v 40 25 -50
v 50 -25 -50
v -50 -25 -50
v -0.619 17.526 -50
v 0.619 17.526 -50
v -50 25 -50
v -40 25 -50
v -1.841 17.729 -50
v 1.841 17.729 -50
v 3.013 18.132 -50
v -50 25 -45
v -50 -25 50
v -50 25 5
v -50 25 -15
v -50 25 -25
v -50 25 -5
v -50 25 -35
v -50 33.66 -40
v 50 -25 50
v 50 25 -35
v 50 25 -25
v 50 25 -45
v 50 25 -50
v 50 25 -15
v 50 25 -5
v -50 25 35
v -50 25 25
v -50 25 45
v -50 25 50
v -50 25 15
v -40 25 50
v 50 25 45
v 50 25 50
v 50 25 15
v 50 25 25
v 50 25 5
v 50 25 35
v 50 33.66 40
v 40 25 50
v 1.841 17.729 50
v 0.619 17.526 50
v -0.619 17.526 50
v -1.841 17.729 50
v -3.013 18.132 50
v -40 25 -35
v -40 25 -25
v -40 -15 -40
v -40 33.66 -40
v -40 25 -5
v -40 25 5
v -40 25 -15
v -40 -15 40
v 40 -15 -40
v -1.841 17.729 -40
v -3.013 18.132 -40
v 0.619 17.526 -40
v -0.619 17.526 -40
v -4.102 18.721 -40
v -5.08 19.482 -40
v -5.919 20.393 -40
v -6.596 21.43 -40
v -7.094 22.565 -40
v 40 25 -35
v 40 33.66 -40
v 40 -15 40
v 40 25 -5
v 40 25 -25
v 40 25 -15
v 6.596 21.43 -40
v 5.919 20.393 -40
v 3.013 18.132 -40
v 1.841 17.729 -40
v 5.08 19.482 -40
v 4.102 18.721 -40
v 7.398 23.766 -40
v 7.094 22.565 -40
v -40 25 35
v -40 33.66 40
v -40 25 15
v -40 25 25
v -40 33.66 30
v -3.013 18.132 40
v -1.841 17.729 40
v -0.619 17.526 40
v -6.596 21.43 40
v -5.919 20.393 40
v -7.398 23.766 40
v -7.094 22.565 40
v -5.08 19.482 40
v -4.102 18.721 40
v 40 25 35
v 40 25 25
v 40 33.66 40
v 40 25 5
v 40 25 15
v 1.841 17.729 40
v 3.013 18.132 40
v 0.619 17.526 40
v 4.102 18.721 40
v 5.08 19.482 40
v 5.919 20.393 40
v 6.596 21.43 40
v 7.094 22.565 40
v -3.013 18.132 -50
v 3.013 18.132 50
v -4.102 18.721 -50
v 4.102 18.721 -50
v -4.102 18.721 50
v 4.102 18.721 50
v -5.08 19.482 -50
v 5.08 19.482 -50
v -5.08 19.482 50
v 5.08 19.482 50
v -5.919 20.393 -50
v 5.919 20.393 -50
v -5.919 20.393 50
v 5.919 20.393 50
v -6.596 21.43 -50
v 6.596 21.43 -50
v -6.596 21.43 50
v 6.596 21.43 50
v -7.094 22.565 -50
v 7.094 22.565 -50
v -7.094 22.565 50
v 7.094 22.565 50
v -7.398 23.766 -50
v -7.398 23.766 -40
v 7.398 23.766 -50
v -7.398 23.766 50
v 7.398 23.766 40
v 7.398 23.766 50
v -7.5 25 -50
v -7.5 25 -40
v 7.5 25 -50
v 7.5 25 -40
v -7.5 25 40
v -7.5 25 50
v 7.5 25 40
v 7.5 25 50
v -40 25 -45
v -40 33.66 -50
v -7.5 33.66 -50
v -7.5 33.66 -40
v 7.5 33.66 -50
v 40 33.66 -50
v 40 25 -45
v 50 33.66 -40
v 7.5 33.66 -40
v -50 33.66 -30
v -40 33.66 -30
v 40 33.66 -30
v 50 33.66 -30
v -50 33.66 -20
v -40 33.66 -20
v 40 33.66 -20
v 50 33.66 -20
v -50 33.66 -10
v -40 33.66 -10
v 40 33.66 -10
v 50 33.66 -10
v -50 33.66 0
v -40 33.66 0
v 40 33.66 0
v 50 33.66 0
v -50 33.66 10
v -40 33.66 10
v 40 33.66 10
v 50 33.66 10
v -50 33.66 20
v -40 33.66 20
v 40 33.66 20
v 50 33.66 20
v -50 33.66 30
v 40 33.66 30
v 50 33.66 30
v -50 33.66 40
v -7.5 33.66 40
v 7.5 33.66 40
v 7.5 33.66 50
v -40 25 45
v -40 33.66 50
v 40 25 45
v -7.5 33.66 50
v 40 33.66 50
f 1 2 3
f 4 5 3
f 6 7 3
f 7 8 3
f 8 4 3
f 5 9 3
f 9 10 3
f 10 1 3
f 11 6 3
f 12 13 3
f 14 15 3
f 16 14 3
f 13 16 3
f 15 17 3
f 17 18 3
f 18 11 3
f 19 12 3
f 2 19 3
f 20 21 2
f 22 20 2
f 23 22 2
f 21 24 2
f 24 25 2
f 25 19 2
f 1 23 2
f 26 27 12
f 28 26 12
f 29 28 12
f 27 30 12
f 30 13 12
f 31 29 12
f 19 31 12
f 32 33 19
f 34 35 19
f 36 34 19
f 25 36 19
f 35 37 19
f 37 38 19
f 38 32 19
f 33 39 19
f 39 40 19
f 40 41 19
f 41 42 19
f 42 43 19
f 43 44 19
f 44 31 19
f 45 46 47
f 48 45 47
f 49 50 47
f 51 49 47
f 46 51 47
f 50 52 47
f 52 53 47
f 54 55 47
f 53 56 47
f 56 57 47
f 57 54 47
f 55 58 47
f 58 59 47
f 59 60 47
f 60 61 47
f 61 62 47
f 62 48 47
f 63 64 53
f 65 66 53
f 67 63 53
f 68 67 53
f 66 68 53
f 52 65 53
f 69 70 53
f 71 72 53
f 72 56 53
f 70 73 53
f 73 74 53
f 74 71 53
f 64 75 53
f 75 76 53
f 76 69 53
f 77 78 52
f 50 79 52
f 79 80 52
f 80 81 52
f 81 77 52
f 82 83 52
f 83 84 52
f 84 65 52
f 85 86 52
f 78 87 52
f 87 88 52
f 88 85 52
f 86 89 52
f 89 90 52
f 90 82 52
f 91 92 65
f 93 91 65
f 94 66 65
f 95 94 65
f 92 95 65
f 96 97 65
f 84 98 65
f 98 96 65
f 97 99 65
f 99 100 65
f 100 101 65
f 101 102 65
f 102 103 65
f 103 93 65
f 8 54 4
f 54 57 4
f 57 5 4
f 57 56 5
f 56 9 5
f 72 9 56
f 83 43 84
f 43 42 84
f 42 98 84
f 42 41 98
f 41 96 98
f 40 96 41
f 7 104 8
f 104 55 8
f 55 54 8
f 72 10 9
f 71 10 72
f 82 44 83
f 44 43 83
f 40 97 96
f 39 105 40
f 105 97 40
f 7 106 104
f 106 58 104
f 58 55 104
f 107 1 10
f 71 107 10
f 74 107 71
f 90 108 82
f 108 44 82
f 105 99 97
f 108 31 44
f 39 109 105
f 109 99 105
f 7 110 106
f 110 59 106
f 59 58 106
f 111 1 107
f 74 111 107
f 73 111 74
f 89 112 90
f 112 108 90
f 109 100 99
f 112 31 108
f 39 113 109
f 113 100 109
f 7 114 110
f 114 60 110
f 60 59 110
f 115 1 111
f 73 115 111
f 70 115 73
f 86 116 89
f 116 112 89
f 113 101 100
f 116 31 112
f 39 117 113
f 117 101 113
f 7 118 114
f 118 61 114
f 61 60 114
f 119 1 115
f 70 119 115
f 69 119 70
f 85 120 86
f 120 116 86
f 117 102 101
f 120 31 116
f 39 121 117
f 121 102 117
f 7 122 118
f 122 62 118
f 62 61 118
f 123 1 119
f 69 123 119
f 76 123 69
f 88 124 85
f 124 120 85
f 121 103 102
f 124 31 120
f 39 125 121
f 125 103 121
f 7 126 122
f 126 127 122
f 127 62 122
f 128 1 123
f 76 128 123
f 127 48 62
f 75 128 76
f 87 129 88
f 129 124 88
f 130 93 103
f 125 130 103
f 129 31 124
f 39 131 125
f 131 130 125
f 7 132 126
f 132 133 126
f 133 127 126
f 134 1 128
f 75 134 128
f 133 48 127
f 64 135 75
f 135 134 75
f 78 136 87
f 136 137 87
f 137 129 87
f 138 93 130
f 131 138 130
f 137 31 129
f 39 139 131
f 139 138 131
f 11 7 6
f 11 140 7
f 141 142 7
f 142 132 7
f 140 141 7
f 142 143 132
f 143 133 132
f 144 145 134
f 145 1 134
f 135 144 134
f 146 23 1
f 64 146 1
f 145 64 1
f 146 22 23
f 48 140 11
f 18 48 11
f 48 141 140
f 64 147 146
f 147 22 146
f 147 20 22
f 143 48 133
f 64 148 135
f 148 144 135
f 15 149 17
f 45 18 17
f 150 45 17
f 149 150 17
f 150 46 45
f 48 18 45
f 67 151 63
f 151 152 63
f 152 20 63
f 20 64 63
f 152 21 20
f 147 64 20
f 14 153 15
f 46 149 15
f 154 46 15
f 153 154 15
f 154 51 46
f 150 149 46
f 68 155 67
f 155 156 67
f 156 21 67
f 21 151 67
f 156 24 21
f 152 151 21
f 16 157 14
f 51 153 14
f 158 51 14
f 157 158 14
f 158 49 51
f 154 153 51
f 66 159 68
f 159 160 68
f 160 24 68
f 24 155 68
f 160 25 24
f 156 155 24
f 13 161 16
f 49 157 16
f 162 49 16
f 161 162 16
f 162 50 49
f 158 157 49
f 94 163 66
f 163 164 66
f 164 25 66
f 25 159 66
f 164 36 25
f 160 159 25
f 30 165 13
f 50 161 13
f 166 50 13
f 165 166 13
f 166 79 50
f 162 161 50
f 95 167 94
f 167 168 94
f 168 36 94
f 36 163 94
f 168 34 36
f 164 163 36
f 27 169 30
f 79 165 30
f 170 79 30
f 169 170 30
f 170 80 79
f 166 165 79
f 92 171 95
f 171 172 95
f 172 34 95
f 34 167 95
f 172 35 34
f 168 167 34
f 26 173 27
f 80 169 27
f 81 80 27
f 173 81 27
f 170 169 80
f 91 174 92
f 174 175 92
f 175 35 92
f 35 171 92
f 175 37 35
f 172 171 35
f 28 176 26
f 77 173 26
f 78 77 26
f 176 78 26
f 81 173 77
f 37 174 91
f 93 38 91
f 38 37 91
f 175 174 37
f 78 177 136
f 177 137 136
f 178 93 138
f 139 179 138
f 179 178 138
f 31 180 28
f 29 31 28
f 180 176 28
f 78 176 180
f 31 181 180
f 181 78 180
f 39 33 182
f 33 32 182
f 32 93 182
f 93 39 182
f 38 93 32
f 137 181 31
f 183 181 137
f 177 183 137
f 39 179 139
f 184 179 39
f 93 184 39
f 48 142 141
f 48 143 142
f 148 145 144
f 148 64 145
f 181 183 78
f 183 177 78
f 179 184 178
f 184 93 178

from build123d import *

# Parameters (mm, degrees)
SKETCH1_W           = 100
SKETCH1_H           = 100
BOSS_EXTRUDE1_DEPTH = 25
SKETCH4_W           = 80
SKETCH4_H           = 80
CUT_EXTRUDE2_DEPTH  = 40
SKETCH5_R           = 7.5
CUT_EXTRUDE3_DEPTH  = 100
BOSS_EXTRUDE4_DEPTH = 10
BOSS_EXTRUDE5_DEPTH = 10
BOSS_EXTRUDE6_START = -90
SKETCH9_W           = 32.5
SKETCH9_H           = 8.660254038
BOSS_EXTRUDE6_DEPTH = 10
SKETCH11_W          = 32.5
SKETCH11_H          = 8.660254038
BOSS_EXTRUDE8_DEPTH = 10


with BuildPart() as part:
    # Sketch1 → Boss-Extrude1 (new body, symmetric)
    with BuildSketch(Plane(origin=(0, 0, 0), x_dir=(1, 0, 0), z_dir=(0, 1, 0))):
        Rectangle(SKETCH1_W, SKETCH1_H)
    extrude(amount=BOSS_EXTRUDE1_DEPTH, both=True)

    # Sketch4 → Cut-Extrude2 (cut)
    with BuildSketch(Plane(origin=(0, 25, 0), x_dir=(1, 0, 0), z_dir=(0, 1, 0))):
        Rectangle(SKETCH4_W, SKETCH4_H)
    extrude(amount=-CUT_EXTRUDE2_DEPTH, mode=Mode.SUBTRACT)

    # Sketch5 → Cut-Extrude3 (cut)
    with BuildSketch(Plane.XY.offset(50)):
        with Locations((0, 25)):
            Circle(SKETCH5_R)
    extrude(amount=-CUT_EXTRUDE3_DEPTH, mode=Mode.SUBTRACT)

    # Sketch7 → Boss-Extrude4 (add)
    with BuildSketch(Plane.ZY.offset(50)):
        Polygon((40, 33.660254038), (35, 25), (45, 25), align=None)
        Polygon((30, 33.660254038), (25, 25), (35, 25), align=None)
        Polygon((20, 33.660254038), (15, 25), (25, 25), align=None)
        Polygon((10, 33.660254038), (5, 25), (15, 25), align=None)
        Polygon((0, 33.660254038), (-5, 25), (5, 25), align=None)
        Polygon((-10, 33.660254038), (-15, 25), (-5, 25), align=None)
        Polygon((-20, 33.660254038), (-25, 25), (-15, 25), align=None)
        Polygon((-30, 33.660254038), (-35, 25), (-25, 25), align=None)
        Polygon((-40, 33.660254038), (-45, 25), (-35, 25), align=None)
    extrude(amount=-BOSS_EXTRUDE4_DEPTH)

    # Sketch8 → Boss-Extrude5 (add)
    with BuildSketch(Plane(origin=(50, 0, 0), x_dir=(0, 0, -1), z_dir=(1, 0, 0))):
        Polygon((40, 33.660254038), (35, 25), (45, 25), align=None)
        Polygon((30, 33.660254038), (25, 25), (35, 25), align=None)
        Polygon((20, 33.660254038), (15, 25), (25, 25), align=None)
        Polygon((10, 33.660254038), (5, 25), (15, 25), align=None)
        Polygon((0, 33.660254038), (-5, 25), (5, 25), align=None)
        Polygon((-10, 33.660254038), (-15, 25), (-5, 25), align=None)
        Polygon((-20, 33.660254038), (-25, 25), (-15, 25), align=None)
        Polygon((-30, 33.660254038), (-35, 25), (-25, 25), align=None)
        Polygon((-40, 33.660254038), (-45, 25), (-35, 25), align=None)
    extrude(amount=-BOSS_EXTRUDE5_DEPTH)

    # Sketch9 → Boss-Extrude6 (add)
    with BuildSketch(Plane.XY.offset(50).offset(BOSS_EXTRUDE6_START)):
        with Locations((-23.75, 29.330127019)):
            Rectangle(SKETCH9_W, SKETCH9_H)
        with Locations((23.75, 29.330127019)):
            Rectangle(SKETCH9_W, SKETCH9_H)
    extrude(amount=-BOSS_EXTRUDE6_DEPTH)

    # Sketch11 → Boss-Extrude8 (add)
    with BuildSketch(Plane.XY.offset(50)):
        with Locations((-23.75, 29.330127019)):
            Rectangle(SKETCH11_W, SKETCH11_H)
        with Locations((23.75, 29.330127019)):
            Rectangle(SKETCH11_W, SKETCH11_H)
    extrude(amount=-BOSS_EXTRUDE8_DEPTH)


solid = part.part
